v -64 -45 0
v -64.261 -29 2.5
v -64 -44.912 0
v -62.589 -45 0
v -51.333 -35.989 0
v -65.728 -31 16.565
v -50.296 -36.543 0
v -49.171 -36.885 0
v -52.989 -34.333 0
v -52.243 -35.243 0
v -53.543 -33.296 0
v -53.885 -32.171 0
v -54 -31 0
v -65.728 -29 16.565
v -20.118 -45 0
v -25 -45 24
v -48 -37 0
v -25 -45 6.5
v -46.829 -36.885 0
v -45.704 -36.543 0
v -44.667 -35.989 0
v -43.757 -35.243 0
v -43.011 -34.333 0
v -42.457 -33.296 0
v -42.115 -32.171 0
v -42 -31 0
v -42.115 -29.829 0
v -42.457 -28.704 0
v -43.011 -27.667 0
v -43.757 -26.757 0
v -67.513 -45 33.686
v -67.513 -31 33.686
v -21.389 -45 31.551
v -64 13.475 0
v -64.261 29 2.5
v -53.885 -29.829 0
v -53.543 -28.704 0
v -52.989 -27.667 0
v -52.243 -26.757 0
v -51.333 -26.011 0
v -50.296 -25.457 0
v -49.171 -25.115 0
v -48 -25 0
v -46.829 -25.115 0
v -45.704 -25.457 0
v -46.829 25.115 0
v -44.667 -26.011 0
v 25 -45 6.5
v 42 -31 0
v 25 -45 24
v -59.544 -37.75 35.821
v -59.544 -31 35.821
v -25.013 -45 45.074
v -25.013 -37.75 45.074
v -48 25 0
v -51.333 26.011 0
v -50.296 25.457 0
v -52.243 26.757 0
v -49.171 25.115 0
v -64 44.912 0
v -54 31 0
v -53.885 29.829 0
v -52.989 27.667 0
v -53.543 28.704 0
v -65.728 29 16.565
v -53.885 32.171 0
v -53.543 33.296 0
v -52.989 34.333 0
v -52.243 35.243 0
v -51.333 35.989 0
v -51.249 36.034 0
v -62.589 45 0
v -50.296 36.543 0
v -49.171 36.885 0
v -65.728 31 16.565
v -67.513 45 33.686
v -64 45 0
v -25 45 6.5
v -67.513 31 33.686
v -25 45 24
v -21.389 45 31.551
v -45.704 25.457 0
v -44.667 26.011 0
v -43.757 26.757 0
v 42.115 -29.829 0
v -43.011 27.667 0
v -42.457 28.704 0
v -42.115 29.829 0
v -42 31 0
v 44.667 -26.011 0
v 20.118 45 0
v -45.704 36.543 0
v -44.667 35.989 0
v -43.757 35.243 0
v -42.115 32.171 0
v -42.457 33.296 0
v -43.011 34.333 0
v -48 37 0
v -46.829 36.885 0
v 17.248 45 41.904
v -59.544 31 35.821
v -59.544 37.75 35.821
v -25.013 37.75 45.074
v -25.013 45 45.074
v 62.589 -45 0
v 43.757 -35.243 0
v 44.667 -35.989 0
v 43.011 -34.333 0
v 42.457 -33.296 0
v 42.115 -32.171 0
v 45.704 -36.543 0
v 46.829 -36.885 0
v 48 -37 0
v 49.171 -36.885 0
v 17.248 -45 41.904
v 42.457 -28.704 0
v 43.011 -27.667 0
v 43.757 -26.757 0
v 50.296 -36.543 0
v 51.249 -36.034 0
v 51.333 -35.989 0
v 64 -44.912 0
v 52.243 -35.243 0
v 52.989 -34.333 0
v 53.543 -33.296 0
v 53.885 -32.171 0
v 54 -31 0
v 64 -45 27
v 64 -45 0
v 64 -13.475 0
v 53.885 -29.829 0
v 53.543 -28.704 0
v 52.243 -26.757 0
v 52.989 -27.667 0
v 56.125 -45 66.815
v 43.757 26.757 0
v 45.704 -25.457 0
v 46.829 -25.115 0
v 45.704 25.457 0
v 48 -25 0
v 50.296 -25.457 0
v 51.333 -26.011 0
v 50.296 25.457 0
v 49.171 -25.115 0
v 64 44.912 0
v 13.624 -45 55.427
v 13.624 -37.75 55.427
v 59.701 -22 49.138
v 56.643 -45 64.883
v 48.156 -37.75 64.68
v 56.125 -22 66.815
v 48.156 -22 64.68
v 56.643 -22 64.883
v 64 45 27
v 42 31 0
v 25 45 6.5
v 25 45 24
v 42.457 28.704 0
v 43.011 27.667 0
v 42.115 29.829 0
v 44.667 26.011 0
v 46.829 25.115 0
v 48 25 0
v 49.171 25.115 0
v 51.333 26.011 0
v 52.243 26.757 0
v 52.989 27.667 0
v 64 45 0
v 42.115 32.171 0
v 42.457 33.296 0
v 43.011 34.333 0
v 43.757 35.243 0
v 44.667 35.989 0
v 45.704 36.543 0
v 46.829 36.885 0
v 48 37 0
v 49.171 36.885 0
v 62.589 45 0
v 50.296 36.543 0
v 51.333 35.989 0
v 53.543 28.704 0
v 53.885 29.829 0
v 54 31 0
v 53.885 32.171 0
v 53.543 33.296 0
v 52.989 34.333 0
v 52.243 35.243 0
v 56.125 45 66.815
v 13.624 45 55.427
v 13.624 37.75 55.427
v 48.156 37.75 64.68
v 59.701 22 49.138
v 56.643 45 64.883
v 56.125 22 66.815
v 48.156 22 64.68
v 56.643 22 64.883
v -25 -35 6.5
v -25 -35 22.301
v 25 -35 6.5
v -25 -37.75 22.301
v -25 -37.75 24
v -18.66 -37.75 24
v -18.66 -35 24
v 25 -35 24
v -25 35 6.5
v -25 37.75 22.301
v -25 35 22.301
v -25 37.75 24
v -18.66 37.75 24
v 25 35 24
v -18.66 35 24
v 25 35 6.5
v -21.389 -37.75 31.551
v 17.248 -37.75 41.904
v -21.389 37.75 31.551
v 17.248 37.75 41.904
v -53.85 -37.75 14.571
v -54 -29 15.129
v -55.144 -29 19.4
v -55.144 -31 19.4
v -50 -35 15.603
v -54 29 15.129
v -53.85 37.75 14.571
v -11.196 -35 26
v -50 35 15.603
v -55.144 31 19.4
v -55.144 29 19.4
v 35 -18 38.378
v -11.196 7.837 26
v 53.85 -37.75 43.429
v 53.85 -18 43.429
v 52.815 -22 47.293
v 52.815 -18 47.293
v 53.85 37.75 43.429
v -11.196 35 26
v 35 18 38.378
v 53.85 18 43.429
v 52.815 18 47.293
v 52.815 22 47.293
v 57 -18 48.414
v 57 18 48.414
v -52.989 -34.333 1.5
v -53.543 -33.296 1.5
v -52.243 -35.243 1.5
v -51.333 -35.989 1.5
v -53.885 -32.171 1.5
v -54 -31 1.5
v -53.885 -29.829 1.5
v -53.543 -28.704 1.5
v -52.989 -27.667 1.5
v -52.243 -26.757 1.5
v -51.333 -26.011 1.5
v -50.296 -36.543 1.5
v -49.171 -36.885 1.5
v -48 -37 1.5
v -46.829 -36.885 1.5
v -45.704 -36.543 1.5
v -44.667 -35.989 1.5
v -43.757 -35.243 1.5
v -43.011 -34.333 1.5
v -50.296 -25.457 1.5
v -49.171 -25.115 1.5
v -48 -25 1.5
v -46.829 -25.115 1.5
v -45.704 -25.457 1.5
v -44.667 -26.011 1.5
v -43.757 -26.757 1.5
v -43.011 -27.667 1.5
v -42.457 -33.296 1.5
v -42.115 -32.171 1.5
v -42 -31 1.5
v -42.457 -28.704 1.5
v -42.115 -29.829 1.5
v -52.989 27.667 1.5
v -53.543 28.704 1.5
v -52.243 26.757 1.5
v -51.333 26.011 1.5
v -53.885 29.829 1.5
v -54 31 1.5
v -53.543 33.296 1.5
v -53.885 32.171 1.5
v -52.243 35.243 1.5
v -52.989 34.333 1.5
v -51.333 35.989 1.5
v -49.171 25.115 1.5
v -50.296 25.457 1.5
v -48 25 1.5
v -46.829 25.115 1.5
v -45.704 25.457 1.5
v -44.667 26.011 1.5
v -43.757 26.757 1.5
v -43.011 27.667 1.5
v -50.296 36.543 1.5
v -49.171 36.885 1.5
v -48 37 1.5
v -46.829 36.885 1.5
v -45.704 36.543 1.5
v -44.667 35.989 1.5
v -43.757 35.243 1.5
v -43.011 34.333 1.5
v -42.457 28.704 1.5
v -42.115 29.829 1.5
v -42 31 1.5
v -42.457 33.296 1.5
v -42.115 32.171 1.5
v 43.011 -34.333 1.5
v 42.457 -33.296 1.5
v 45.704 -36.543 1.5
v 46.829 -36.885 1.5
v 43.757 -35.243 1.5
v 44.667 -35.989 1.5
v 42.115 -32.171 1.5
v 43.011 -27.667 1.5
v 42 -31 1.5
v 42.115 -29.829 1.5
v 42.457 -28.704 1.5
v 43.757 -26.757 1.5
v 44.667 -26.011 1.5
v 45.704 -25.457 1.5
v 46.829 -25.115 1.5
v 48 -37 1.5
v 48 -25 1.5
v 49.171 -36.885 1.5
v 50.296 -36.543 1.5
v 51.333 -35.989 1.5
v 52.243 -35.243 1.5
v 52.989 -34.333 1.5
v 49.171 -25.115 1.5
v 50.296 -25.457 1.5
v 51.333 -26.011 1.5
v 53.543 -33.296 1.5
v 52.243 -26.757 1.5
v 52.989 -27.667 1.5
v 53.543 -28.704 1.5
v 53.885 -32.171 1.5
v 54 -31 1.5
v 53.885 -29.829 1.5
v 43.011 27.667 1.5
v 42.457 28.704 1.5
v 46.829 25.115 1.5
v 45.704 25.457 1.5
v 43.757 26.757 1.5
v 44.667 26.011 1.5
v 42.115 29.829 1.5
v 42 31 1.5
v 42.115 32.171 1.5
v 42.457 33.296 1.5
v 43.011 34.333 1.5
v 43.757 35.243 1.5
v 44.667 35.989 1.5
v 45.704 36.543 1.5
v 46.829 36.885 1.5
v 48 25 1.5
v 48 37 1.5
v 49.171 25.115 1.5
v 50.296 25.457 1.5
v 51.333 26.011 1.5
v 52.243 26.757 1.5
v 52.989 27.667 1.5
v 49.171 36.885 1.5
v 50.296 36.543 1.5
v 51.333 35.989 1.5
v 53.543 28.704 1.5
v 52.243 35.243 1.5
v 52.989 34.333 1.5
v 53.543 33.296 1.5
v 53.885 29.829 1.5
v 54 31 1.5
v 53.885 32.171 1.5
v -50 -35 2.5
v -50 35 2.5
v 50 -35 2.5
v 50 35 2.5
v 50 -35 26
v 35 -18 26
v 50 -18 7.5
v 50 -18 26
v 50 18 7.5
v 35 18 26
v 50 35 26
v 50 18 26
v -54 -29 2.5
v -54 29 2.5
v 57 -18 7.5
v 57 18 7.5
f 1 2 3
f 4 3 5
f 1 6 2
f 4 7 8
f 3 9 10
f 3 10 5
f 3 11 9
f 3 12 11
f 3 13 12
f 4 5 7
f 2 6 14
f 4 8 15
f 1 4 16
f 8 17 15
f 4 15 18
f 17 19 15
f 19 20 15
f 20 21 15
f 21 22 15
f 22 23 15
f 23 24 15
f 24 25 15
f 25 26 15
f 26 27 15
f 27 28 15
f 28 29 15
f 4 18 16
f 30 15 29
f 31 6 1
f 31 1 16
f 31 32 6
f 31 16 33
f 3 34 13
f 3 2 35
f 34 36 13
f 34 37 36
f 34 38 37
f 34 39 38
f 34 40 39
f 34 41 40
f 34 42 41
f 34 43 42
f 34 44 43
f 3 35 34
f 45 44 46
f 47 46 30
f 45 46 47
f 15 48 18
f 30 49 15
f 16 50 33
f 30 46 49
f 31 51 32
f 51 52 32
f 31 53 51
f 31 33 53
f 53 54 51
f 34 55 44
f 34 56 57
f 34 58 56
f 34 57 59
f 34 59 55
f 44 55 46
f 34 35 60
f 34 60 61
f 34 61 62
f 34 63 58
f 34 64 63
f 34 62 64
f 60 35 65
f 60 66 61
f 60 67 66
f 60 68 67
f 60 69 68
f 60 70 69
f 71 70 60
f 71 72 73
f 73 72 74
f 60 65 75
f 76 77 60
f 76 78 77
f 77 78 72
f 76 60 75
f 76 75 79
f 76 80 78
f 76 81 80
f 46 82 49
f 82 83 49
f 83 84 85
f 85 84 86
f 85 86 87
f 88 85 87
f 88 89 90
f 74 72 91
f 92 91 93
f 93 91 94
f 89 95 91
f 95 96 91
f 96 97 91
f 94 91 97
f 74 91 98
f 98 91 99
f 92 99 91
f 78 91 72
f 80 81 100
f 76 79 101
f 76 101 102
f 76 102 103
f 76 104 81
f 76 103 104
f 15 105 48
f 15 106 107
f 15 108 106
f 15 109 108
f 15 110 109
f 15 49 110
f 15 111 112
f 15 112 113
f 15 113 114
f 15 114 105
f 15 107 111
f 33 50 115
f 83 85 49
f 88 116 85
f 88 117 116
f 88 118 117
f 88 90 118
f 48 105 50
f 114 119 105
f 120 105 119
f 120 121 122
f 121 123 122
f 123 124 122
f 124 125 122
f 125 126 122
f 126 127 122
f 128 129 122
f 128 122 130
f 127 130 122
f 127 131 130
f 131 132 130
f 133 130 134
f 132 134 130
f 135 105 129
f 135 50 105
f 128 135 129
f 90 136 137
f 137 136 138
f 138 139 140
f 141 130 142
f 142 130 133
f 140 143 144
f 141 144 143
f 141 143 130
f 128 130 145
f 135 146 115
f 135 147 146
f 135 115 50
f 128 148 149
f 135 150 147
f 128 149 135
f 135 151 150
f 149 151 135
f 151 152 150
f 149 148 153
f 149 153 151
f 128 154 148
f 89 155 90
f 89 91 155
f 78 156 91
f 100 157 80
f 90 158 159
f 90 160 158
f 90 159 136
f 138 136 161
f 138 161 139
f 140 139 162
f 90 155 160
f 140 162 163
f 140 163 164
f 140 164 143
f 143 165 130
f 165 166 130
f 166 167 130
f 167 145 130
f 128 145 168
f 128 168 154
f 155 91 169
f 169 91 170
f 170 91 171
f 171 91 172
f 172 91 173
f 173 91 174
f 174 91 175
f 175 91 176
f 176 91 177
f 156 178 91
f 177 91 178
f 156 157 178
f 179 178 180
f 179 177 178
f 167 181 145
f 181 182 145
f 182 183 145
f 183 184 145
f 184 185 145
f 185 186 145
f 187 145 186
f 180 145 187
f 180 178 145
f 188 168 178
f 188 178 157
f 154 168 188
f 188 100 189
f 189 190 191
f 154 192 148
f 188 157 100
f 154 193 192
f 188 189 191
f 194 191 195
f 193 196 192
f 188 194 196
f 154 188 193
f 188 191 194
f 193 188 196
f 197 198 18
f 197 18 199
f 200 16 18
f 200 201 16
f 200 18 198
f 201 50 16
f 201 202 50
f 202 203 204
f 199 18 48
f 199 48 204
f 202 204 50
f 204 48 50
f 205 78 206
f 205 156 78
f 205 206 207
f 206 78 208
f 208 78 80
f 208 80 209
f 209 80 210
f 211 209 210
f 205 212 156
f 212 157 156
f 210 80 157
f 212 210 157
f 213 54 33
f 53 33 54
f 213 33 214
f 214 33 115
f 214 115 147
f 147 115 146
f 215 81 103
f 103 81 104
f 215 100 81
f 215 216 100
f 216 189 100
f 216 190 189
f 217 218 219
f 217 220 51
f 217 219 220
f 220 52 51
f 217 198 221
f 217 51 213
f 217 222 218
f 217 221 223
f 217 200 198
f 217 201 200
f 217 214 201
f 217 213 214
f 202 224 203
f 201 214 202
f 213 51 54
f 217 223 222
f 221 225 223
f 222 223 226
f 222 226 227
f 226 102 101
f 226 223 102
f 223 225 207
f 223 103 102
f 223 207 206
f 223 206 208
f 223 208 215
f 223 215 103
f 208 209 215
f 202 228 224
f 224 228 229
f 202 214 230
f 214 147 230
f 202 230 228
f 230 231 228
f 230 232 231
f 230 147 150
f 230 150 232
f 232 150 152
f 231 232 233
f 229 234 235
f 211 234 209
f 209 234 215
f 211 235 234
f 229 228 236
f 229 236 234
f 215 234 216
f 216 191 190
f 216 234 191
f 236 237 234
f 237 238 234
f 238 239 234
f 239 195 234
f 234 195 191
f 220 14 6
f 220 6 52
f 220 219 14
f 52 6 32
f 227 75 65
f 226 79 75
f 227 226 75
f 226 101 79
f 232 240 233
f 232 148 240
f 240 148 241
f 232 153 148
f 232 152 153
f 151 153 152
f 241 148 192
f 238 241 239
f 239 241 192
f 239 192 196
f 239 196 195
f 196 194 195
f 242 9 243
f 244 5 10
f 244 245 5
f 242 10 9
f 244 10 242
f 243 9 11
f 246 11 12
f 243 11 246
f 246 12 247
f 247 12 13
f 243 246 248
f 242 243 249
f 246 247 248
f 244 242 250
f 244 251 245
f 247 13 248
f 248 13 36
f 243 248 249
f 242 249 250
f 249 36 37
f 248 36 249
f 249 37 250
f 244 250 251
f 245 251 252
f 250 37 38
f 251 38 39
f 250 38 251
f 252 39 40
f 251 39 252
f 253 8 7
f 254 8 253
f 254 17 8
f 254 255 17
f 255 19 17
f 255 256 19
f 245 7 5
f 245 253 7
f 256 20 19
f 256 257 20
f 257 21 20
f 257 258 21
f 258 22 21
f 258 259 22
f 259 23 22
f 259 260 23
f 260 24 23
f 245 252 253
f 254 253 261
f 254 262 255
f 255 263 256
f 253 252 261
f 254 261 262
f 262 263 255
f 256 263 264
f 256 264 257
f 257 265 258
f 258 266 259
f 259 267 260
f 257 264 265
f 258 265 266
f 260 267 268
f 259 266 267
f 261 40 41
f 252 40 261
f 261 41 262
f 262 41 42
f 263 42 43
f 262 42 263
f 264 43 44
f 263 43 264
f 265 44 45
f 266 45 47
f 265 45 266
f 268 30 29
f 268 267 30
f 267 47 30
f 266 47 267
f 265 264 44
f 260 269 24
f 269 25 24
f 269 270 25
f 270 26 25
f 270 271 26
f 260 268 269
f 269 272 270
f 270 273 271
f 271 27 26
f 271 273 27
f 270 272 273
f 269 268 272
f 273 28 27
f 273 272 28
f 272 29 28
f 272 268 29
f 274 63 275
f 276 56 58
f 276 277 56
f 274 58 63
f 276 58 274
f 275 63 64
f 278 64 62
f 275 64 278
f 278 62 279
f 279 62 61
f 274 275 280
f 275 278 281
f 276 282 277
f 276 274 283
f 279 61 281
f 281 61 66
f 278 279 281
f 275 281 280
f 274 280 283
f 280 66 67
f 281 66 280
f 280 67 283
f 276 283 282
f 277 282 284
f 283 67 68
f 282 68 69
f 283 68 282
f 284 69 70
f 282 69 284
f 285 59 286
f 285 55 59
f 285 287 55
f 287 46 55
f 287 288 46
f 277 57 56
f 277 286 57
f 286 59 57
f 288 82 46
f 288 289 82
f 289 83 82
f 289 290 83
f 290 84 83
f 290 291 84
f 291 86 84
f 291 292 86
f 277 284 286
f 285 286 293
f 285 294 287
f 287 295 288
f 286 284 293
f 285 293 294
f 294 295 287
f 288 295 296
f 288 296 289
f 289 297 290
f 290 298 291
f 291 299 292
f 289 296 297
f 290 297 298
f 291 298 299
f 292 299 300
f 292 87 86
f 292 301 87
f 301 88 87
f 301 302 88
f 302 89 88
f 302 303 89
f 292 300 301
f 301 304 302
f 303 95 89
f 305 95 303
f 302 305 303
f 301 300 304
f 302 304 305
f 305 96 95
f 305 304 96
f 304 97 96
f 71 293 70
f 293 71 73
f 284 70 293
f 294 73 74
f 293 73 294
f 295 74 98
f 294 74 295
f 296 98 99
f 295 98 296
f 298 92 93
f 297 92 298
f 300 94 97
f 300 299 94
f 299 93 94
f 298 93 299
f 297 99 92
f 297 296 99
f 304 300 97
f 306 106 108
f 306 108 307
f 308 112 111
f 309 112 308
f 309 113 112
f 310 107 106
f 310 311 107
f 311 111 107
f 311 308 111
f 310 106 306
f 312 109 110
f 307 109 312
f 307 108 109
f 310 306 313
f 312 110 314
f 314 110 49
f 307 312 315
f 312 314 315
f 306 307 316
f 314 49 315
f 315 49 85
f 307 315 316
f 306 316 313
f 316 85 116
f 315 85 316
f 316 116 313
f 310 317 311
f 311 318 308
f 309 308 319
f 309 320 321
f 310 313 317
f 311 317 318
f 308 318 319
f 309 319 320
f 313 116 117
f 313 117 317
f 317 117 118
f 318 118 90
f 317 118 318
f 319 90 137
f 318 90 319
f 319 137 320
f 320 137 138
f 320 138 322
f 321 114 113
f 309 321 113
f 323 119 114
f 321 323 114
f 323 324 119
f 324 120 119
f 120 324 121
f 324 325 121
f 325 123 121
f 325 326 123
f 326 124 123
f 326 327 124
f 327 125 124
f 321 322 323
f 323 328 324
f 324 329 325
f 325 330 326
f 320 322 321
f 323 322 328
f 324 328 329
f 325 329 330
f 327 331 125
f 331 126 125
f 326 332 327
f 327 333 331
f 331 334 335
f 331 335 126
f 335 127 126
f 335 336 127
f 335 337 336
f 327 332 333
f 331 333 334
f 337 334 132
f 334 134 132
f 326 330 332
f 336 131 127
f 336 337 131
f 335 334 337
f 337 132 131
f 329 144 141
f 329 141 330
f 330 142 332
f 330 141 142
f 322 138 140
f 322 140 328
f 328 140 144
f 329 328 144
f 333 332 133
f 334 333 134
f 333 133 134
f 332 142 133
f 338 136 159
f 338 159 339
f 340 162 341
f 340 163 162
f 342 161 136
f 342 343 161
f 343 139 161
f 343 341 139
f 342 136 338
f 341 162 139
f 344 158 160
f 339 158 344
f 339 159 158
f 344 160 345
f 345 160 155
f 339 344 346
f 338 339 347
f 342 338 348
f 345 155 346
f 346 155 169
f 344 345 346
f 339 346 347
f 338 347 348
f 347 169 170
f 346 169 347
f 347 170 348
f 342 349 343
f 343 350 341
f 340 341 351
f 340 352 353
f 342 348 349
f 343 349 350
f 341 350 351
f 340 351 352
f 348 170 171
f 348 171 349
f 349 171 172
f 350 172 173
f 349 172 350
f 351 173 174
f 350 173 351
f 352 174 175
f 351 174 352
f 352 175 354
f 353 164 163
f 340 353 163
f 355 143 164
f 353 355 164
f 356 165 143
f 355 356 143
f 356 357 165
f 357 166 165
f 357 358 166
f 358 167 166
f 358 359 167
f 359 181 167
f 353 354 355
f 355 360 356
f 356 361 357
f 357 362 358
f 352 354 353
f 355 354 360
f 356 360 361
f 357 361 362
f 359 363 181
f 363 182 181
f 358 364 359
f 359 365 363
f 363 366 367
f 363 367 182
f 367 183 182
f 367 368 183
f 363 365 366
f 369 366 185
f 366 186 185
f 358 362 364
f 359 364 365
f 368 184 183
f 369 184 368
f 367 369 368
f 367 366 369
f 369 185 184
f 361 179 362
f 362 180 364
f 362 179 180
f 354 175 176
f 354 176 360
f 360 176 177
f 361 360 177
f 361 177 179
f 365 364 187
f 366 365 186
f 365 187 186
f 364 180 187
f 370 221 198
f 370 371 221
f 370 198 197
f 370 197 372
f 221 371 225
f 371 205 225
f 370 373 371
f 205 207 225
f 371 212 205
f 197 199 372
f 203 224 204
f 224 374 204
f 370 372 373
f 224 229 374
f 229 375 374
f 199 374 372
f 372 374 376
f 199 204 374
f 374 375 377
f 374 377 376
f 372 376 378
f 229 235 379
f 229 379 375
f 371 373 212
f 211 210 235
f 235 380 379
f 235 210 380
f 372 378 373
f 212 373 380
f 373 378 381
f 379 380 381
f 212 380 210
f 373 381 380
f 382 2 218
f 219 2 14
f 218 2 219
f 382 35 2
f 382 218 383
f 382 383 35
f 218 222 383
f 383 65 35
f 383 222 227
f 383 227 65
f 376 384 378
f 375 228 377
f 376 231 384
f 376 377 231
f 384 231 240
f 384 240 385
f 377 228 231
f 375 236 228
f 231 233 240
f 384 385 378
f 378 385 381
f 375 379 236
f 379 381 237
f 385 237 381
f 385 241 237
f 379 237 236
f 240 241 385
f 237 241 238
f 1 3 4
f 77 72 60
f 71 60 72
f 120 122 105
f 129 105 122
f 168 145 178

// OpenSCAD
// =============================================================================
// OpenMotorBridge - Dual-Stack Dashboard Wedge Dock (Central Box + Front Node)
// =============================================================================
// File: hardware/cad/scad/05_accessories/car_dashboard_wedge_dock.scad
// Description: Two-tier vibration-damped automotive dashboard dock for support cars:
//              1. Lower Chamber (Tier 1, horizontal base):
//                 Slide-in pocket for the Front Node (PCBA 05, 98 x 68 x 25 mm).
//                 Front aperture provides direct sky/windshield view for the SAM-M10Q
//                 GNSS and Knowles MEMS microphone, with side access for Dual USB-PD.
//              2. Upper Deck (Tier 2, 15° forward tilt):
//                 Form-fit pocket for Central Control Box (PCBA 01, 110 x 74 x 32 mm).
//                 Ergonomically tilted at 15° for glare-free visibility of status LEDs.
//              3. Internal Vertical Passthrough Duct:
//                 Concealed cable channel connecting lower Front Node J1 (JWPF 2-pin)
//                 and upper Central Box J1 (Deutsch DTM-12) to the 12V Y-adapter harness.
//              4. Dual lateral finger release notches for 1-second insertion & removal.
//              5. 4x underside recesses for anti-slip silicone feet (Ø 12 x 1.5 mm).
// =============================================================================

include <../00_common/parameters.scad>;

// --- Parametric Dual-Stack Dock Dimensions ---
DOCK_TILT_ANGLE      = 15.0; // Ergonomic viewing angle for top deck (degrees)
DOCK_WALL            = 3.2;  // Wall thickness (mm)
DOCK_BASE_L          = MAIN_BOX_OUTER_L + 18.0; // 128.0 mm in X
DOCK_BASE_W          = MAIN_BOX_OUTER_W + 16.0; // 90.0 mm in Y

// Lower Tier (Front Node Chamber)
LOWER_POCKET_L       = FRONT_NODE_OUTER_L + 2.0; // 100.0 mm
LOWER_POCKET_W       = FRONT_NODE_OUTER_W + 2.0; // 70.0 mm
LOWER_POCKET_H       = FRONT_NODE_OUTER_H + 1.5; // 26.5 mm
LOWER_FLOOR_Z        = 2.5;                      // Floor thickness (mm)

// Upper Tier (Central Box Deck)
UPPER_POCKET_L       = MAIN_BOX_OUTER_L + 1.5;   // 111.5 mm
UPPER_POCKET_W       = MAIN_BOX_OUTER_W + 1.5;   // 75.5 mm
UPPER_POCKET_DEPTH   = 18.0;                     // Depth of upper pocket (mm)
UPPER_DECK_Z         = LOWER_FLOOR_Z + LOWER_POCKET_H + 3.0; // 32.0 mm base height of upper wedge

module car_dashboard_wedge_dock() {
    difference() {
        // --- 1. SOLID MULTI-TIER WEDGE BODY ---
        hull() {
            // Flat base footprint on dashboard
            translate([-DOCK_BASE_L/2.0, -DOCK_BASE_W/2.0, 0])
                cube([DOCK_BASE_L, DOCK_BASE_W, 2.0], center=false);

            // Intermediate body height for lower tier
            translate([-DOCK_BASE_L/2.0, -DOCK_BASE_W/2.0, UPPER_DECK_Z - 4.0])
                cube([DOCK_BASE_L, DOCK_BASE_W, 2.0], center=false);

            // Tilted upper rim
            translate([0, 0, UPPER_DECK_Z]) {
                rotate([0, -DOCK_TILT_ANGLE, 0]) {
                    translate([-DOCK_BASE_L/2.0, -DOCK_BASE_W/2.0, UPPER_POCKET_DEPTH + 2.0])
                        cube([DOCK_BASE_L, DOCK_BASE_W, 2.0], center=false);
                }
            }
        }

        // --- 2. LOWER TIER: FRONT NODE CAVITY (PCBA 05) ---
        translate([-LOWER_POCKET_L/2.0, -LOWER_POCKET_W/2.0, LOWER_FLOOR_Z]) {
            cube([LOWER_POCKET_L, LOWER_POCKET_W, LOWER_POCKET_H], center=false);
        }

        // Front Node front opening (slide-in & acoustic/GNSS aperture towards windshield)
        translate([-DOCK_BASE_L/2.0 - 5.0, -(LOWER_POCKET_W - 12.0)/2.0, LOWER_FLOOR_Z]) {
            cube([15.0, LOWER_POCKET_W - 12.0, LOWER_POCKET_H + 2.0], center=false);
        }

        // Lateral access cutouts for Front Node USB-PD ports (left & right)
        for (side = [-DOCK_BASE_W/2.0 - 2.0, DOCK_BASE_W/2.0 - 10.0]) {
            translate([-25.0, side, LOWER_FLOOR_Z + 4.0])
                cube([50.0, 12.0, LOWER_POCKET_H - 6.0], center=false);
        }

        // --- 3. UPPER TIER: TILTED CENTRAL BOX INSERTION POCKET ---
        translate([0, 0, UPPER_DECK_Z]) {
            rotate([0, -DOCK_TILT_ANGLE, 0]) {
                // Main Central Box cavity
                translate([-UPPER_POCKET_L/2.0, -UPPER_POCKET_W/2.0, 0])
                    cube([UPPER_POCKET_L, UPPER_POCKET_W, 40.0], center=false);

                // Front status LED viewing window
                translate([-DOCK_BASE_L/2.0 - 5.0, -(MAIN_BOX_OUTER_W - 12.0)/2.0, 5.0])
                    cube([15.0, MAIN_BOX_OUTER_W - 12.0, 35.0], center=false);

                // Rear cable passthrough (for Deutsch DTM-12 harness & USB-C media cable)
                translate([MAIN_BOX_OUTER_L/2.0 - 5.0, -22.0, 4.0])
                    cube([25.0, 44.0, 35.0], center=false);

                // Lateral finger extraction notches (left & right)
                for (side = [-DOCK_BASE_W/2.0 - 2.0, DOCK_BASE_W/2.0 - 10.0]) {
                    translate([-20.0, side, 8.0])
                        cube([40.0, 12.0, 30.0], center=false);
                }
            }
        }

        // --- 4. INTERNAL VERTICAL PASSTHROUGH DUCT ---
        // Connects lower tier (Front Node J1 JWPF) and upper tier (Central Box J1 DTM-12)
        translate([MAIN_BOX_OUTER_L/2.0 - 20.0, -18.0, LOWER_FLOOR_Z + 5.0]) {
            cube([22.0, 36.0, UPPER_DECK_Z + 15.0], center=false);
        }

        // --- 5. BASELINE CUTOUT (Ensure perfectly flat bottom at Z = 0) ---
        translate([-DOCK_BASE_L, -DOCK_BASE_W, -20.0])
            cube([DOCK_BASE_L * 2.0, DOCK_BASE_W * 2.0, 20.0], center=false);

        // --- 6. UNDERSIDE RUBBER FEET RECESSES (4x Ø 12 mm x 1.5 mm deep) ---
        for (dx = [-DOCK_BASE_L/2.0 + 16.0, DOCK_BASE_L/2.0 - 16.0]) {
            for (dy = [-DOCK_BASE_W/2.0 + 14.0, DOCK_BASE_W/2.0 - 14.0]) {
                translate([dx, dy, -0.1])
                    cylinder(r=6.0, h=1.6, center=false, $fn=32);
            }
        }
    }
}

car_dashboard_wedge_dock();
